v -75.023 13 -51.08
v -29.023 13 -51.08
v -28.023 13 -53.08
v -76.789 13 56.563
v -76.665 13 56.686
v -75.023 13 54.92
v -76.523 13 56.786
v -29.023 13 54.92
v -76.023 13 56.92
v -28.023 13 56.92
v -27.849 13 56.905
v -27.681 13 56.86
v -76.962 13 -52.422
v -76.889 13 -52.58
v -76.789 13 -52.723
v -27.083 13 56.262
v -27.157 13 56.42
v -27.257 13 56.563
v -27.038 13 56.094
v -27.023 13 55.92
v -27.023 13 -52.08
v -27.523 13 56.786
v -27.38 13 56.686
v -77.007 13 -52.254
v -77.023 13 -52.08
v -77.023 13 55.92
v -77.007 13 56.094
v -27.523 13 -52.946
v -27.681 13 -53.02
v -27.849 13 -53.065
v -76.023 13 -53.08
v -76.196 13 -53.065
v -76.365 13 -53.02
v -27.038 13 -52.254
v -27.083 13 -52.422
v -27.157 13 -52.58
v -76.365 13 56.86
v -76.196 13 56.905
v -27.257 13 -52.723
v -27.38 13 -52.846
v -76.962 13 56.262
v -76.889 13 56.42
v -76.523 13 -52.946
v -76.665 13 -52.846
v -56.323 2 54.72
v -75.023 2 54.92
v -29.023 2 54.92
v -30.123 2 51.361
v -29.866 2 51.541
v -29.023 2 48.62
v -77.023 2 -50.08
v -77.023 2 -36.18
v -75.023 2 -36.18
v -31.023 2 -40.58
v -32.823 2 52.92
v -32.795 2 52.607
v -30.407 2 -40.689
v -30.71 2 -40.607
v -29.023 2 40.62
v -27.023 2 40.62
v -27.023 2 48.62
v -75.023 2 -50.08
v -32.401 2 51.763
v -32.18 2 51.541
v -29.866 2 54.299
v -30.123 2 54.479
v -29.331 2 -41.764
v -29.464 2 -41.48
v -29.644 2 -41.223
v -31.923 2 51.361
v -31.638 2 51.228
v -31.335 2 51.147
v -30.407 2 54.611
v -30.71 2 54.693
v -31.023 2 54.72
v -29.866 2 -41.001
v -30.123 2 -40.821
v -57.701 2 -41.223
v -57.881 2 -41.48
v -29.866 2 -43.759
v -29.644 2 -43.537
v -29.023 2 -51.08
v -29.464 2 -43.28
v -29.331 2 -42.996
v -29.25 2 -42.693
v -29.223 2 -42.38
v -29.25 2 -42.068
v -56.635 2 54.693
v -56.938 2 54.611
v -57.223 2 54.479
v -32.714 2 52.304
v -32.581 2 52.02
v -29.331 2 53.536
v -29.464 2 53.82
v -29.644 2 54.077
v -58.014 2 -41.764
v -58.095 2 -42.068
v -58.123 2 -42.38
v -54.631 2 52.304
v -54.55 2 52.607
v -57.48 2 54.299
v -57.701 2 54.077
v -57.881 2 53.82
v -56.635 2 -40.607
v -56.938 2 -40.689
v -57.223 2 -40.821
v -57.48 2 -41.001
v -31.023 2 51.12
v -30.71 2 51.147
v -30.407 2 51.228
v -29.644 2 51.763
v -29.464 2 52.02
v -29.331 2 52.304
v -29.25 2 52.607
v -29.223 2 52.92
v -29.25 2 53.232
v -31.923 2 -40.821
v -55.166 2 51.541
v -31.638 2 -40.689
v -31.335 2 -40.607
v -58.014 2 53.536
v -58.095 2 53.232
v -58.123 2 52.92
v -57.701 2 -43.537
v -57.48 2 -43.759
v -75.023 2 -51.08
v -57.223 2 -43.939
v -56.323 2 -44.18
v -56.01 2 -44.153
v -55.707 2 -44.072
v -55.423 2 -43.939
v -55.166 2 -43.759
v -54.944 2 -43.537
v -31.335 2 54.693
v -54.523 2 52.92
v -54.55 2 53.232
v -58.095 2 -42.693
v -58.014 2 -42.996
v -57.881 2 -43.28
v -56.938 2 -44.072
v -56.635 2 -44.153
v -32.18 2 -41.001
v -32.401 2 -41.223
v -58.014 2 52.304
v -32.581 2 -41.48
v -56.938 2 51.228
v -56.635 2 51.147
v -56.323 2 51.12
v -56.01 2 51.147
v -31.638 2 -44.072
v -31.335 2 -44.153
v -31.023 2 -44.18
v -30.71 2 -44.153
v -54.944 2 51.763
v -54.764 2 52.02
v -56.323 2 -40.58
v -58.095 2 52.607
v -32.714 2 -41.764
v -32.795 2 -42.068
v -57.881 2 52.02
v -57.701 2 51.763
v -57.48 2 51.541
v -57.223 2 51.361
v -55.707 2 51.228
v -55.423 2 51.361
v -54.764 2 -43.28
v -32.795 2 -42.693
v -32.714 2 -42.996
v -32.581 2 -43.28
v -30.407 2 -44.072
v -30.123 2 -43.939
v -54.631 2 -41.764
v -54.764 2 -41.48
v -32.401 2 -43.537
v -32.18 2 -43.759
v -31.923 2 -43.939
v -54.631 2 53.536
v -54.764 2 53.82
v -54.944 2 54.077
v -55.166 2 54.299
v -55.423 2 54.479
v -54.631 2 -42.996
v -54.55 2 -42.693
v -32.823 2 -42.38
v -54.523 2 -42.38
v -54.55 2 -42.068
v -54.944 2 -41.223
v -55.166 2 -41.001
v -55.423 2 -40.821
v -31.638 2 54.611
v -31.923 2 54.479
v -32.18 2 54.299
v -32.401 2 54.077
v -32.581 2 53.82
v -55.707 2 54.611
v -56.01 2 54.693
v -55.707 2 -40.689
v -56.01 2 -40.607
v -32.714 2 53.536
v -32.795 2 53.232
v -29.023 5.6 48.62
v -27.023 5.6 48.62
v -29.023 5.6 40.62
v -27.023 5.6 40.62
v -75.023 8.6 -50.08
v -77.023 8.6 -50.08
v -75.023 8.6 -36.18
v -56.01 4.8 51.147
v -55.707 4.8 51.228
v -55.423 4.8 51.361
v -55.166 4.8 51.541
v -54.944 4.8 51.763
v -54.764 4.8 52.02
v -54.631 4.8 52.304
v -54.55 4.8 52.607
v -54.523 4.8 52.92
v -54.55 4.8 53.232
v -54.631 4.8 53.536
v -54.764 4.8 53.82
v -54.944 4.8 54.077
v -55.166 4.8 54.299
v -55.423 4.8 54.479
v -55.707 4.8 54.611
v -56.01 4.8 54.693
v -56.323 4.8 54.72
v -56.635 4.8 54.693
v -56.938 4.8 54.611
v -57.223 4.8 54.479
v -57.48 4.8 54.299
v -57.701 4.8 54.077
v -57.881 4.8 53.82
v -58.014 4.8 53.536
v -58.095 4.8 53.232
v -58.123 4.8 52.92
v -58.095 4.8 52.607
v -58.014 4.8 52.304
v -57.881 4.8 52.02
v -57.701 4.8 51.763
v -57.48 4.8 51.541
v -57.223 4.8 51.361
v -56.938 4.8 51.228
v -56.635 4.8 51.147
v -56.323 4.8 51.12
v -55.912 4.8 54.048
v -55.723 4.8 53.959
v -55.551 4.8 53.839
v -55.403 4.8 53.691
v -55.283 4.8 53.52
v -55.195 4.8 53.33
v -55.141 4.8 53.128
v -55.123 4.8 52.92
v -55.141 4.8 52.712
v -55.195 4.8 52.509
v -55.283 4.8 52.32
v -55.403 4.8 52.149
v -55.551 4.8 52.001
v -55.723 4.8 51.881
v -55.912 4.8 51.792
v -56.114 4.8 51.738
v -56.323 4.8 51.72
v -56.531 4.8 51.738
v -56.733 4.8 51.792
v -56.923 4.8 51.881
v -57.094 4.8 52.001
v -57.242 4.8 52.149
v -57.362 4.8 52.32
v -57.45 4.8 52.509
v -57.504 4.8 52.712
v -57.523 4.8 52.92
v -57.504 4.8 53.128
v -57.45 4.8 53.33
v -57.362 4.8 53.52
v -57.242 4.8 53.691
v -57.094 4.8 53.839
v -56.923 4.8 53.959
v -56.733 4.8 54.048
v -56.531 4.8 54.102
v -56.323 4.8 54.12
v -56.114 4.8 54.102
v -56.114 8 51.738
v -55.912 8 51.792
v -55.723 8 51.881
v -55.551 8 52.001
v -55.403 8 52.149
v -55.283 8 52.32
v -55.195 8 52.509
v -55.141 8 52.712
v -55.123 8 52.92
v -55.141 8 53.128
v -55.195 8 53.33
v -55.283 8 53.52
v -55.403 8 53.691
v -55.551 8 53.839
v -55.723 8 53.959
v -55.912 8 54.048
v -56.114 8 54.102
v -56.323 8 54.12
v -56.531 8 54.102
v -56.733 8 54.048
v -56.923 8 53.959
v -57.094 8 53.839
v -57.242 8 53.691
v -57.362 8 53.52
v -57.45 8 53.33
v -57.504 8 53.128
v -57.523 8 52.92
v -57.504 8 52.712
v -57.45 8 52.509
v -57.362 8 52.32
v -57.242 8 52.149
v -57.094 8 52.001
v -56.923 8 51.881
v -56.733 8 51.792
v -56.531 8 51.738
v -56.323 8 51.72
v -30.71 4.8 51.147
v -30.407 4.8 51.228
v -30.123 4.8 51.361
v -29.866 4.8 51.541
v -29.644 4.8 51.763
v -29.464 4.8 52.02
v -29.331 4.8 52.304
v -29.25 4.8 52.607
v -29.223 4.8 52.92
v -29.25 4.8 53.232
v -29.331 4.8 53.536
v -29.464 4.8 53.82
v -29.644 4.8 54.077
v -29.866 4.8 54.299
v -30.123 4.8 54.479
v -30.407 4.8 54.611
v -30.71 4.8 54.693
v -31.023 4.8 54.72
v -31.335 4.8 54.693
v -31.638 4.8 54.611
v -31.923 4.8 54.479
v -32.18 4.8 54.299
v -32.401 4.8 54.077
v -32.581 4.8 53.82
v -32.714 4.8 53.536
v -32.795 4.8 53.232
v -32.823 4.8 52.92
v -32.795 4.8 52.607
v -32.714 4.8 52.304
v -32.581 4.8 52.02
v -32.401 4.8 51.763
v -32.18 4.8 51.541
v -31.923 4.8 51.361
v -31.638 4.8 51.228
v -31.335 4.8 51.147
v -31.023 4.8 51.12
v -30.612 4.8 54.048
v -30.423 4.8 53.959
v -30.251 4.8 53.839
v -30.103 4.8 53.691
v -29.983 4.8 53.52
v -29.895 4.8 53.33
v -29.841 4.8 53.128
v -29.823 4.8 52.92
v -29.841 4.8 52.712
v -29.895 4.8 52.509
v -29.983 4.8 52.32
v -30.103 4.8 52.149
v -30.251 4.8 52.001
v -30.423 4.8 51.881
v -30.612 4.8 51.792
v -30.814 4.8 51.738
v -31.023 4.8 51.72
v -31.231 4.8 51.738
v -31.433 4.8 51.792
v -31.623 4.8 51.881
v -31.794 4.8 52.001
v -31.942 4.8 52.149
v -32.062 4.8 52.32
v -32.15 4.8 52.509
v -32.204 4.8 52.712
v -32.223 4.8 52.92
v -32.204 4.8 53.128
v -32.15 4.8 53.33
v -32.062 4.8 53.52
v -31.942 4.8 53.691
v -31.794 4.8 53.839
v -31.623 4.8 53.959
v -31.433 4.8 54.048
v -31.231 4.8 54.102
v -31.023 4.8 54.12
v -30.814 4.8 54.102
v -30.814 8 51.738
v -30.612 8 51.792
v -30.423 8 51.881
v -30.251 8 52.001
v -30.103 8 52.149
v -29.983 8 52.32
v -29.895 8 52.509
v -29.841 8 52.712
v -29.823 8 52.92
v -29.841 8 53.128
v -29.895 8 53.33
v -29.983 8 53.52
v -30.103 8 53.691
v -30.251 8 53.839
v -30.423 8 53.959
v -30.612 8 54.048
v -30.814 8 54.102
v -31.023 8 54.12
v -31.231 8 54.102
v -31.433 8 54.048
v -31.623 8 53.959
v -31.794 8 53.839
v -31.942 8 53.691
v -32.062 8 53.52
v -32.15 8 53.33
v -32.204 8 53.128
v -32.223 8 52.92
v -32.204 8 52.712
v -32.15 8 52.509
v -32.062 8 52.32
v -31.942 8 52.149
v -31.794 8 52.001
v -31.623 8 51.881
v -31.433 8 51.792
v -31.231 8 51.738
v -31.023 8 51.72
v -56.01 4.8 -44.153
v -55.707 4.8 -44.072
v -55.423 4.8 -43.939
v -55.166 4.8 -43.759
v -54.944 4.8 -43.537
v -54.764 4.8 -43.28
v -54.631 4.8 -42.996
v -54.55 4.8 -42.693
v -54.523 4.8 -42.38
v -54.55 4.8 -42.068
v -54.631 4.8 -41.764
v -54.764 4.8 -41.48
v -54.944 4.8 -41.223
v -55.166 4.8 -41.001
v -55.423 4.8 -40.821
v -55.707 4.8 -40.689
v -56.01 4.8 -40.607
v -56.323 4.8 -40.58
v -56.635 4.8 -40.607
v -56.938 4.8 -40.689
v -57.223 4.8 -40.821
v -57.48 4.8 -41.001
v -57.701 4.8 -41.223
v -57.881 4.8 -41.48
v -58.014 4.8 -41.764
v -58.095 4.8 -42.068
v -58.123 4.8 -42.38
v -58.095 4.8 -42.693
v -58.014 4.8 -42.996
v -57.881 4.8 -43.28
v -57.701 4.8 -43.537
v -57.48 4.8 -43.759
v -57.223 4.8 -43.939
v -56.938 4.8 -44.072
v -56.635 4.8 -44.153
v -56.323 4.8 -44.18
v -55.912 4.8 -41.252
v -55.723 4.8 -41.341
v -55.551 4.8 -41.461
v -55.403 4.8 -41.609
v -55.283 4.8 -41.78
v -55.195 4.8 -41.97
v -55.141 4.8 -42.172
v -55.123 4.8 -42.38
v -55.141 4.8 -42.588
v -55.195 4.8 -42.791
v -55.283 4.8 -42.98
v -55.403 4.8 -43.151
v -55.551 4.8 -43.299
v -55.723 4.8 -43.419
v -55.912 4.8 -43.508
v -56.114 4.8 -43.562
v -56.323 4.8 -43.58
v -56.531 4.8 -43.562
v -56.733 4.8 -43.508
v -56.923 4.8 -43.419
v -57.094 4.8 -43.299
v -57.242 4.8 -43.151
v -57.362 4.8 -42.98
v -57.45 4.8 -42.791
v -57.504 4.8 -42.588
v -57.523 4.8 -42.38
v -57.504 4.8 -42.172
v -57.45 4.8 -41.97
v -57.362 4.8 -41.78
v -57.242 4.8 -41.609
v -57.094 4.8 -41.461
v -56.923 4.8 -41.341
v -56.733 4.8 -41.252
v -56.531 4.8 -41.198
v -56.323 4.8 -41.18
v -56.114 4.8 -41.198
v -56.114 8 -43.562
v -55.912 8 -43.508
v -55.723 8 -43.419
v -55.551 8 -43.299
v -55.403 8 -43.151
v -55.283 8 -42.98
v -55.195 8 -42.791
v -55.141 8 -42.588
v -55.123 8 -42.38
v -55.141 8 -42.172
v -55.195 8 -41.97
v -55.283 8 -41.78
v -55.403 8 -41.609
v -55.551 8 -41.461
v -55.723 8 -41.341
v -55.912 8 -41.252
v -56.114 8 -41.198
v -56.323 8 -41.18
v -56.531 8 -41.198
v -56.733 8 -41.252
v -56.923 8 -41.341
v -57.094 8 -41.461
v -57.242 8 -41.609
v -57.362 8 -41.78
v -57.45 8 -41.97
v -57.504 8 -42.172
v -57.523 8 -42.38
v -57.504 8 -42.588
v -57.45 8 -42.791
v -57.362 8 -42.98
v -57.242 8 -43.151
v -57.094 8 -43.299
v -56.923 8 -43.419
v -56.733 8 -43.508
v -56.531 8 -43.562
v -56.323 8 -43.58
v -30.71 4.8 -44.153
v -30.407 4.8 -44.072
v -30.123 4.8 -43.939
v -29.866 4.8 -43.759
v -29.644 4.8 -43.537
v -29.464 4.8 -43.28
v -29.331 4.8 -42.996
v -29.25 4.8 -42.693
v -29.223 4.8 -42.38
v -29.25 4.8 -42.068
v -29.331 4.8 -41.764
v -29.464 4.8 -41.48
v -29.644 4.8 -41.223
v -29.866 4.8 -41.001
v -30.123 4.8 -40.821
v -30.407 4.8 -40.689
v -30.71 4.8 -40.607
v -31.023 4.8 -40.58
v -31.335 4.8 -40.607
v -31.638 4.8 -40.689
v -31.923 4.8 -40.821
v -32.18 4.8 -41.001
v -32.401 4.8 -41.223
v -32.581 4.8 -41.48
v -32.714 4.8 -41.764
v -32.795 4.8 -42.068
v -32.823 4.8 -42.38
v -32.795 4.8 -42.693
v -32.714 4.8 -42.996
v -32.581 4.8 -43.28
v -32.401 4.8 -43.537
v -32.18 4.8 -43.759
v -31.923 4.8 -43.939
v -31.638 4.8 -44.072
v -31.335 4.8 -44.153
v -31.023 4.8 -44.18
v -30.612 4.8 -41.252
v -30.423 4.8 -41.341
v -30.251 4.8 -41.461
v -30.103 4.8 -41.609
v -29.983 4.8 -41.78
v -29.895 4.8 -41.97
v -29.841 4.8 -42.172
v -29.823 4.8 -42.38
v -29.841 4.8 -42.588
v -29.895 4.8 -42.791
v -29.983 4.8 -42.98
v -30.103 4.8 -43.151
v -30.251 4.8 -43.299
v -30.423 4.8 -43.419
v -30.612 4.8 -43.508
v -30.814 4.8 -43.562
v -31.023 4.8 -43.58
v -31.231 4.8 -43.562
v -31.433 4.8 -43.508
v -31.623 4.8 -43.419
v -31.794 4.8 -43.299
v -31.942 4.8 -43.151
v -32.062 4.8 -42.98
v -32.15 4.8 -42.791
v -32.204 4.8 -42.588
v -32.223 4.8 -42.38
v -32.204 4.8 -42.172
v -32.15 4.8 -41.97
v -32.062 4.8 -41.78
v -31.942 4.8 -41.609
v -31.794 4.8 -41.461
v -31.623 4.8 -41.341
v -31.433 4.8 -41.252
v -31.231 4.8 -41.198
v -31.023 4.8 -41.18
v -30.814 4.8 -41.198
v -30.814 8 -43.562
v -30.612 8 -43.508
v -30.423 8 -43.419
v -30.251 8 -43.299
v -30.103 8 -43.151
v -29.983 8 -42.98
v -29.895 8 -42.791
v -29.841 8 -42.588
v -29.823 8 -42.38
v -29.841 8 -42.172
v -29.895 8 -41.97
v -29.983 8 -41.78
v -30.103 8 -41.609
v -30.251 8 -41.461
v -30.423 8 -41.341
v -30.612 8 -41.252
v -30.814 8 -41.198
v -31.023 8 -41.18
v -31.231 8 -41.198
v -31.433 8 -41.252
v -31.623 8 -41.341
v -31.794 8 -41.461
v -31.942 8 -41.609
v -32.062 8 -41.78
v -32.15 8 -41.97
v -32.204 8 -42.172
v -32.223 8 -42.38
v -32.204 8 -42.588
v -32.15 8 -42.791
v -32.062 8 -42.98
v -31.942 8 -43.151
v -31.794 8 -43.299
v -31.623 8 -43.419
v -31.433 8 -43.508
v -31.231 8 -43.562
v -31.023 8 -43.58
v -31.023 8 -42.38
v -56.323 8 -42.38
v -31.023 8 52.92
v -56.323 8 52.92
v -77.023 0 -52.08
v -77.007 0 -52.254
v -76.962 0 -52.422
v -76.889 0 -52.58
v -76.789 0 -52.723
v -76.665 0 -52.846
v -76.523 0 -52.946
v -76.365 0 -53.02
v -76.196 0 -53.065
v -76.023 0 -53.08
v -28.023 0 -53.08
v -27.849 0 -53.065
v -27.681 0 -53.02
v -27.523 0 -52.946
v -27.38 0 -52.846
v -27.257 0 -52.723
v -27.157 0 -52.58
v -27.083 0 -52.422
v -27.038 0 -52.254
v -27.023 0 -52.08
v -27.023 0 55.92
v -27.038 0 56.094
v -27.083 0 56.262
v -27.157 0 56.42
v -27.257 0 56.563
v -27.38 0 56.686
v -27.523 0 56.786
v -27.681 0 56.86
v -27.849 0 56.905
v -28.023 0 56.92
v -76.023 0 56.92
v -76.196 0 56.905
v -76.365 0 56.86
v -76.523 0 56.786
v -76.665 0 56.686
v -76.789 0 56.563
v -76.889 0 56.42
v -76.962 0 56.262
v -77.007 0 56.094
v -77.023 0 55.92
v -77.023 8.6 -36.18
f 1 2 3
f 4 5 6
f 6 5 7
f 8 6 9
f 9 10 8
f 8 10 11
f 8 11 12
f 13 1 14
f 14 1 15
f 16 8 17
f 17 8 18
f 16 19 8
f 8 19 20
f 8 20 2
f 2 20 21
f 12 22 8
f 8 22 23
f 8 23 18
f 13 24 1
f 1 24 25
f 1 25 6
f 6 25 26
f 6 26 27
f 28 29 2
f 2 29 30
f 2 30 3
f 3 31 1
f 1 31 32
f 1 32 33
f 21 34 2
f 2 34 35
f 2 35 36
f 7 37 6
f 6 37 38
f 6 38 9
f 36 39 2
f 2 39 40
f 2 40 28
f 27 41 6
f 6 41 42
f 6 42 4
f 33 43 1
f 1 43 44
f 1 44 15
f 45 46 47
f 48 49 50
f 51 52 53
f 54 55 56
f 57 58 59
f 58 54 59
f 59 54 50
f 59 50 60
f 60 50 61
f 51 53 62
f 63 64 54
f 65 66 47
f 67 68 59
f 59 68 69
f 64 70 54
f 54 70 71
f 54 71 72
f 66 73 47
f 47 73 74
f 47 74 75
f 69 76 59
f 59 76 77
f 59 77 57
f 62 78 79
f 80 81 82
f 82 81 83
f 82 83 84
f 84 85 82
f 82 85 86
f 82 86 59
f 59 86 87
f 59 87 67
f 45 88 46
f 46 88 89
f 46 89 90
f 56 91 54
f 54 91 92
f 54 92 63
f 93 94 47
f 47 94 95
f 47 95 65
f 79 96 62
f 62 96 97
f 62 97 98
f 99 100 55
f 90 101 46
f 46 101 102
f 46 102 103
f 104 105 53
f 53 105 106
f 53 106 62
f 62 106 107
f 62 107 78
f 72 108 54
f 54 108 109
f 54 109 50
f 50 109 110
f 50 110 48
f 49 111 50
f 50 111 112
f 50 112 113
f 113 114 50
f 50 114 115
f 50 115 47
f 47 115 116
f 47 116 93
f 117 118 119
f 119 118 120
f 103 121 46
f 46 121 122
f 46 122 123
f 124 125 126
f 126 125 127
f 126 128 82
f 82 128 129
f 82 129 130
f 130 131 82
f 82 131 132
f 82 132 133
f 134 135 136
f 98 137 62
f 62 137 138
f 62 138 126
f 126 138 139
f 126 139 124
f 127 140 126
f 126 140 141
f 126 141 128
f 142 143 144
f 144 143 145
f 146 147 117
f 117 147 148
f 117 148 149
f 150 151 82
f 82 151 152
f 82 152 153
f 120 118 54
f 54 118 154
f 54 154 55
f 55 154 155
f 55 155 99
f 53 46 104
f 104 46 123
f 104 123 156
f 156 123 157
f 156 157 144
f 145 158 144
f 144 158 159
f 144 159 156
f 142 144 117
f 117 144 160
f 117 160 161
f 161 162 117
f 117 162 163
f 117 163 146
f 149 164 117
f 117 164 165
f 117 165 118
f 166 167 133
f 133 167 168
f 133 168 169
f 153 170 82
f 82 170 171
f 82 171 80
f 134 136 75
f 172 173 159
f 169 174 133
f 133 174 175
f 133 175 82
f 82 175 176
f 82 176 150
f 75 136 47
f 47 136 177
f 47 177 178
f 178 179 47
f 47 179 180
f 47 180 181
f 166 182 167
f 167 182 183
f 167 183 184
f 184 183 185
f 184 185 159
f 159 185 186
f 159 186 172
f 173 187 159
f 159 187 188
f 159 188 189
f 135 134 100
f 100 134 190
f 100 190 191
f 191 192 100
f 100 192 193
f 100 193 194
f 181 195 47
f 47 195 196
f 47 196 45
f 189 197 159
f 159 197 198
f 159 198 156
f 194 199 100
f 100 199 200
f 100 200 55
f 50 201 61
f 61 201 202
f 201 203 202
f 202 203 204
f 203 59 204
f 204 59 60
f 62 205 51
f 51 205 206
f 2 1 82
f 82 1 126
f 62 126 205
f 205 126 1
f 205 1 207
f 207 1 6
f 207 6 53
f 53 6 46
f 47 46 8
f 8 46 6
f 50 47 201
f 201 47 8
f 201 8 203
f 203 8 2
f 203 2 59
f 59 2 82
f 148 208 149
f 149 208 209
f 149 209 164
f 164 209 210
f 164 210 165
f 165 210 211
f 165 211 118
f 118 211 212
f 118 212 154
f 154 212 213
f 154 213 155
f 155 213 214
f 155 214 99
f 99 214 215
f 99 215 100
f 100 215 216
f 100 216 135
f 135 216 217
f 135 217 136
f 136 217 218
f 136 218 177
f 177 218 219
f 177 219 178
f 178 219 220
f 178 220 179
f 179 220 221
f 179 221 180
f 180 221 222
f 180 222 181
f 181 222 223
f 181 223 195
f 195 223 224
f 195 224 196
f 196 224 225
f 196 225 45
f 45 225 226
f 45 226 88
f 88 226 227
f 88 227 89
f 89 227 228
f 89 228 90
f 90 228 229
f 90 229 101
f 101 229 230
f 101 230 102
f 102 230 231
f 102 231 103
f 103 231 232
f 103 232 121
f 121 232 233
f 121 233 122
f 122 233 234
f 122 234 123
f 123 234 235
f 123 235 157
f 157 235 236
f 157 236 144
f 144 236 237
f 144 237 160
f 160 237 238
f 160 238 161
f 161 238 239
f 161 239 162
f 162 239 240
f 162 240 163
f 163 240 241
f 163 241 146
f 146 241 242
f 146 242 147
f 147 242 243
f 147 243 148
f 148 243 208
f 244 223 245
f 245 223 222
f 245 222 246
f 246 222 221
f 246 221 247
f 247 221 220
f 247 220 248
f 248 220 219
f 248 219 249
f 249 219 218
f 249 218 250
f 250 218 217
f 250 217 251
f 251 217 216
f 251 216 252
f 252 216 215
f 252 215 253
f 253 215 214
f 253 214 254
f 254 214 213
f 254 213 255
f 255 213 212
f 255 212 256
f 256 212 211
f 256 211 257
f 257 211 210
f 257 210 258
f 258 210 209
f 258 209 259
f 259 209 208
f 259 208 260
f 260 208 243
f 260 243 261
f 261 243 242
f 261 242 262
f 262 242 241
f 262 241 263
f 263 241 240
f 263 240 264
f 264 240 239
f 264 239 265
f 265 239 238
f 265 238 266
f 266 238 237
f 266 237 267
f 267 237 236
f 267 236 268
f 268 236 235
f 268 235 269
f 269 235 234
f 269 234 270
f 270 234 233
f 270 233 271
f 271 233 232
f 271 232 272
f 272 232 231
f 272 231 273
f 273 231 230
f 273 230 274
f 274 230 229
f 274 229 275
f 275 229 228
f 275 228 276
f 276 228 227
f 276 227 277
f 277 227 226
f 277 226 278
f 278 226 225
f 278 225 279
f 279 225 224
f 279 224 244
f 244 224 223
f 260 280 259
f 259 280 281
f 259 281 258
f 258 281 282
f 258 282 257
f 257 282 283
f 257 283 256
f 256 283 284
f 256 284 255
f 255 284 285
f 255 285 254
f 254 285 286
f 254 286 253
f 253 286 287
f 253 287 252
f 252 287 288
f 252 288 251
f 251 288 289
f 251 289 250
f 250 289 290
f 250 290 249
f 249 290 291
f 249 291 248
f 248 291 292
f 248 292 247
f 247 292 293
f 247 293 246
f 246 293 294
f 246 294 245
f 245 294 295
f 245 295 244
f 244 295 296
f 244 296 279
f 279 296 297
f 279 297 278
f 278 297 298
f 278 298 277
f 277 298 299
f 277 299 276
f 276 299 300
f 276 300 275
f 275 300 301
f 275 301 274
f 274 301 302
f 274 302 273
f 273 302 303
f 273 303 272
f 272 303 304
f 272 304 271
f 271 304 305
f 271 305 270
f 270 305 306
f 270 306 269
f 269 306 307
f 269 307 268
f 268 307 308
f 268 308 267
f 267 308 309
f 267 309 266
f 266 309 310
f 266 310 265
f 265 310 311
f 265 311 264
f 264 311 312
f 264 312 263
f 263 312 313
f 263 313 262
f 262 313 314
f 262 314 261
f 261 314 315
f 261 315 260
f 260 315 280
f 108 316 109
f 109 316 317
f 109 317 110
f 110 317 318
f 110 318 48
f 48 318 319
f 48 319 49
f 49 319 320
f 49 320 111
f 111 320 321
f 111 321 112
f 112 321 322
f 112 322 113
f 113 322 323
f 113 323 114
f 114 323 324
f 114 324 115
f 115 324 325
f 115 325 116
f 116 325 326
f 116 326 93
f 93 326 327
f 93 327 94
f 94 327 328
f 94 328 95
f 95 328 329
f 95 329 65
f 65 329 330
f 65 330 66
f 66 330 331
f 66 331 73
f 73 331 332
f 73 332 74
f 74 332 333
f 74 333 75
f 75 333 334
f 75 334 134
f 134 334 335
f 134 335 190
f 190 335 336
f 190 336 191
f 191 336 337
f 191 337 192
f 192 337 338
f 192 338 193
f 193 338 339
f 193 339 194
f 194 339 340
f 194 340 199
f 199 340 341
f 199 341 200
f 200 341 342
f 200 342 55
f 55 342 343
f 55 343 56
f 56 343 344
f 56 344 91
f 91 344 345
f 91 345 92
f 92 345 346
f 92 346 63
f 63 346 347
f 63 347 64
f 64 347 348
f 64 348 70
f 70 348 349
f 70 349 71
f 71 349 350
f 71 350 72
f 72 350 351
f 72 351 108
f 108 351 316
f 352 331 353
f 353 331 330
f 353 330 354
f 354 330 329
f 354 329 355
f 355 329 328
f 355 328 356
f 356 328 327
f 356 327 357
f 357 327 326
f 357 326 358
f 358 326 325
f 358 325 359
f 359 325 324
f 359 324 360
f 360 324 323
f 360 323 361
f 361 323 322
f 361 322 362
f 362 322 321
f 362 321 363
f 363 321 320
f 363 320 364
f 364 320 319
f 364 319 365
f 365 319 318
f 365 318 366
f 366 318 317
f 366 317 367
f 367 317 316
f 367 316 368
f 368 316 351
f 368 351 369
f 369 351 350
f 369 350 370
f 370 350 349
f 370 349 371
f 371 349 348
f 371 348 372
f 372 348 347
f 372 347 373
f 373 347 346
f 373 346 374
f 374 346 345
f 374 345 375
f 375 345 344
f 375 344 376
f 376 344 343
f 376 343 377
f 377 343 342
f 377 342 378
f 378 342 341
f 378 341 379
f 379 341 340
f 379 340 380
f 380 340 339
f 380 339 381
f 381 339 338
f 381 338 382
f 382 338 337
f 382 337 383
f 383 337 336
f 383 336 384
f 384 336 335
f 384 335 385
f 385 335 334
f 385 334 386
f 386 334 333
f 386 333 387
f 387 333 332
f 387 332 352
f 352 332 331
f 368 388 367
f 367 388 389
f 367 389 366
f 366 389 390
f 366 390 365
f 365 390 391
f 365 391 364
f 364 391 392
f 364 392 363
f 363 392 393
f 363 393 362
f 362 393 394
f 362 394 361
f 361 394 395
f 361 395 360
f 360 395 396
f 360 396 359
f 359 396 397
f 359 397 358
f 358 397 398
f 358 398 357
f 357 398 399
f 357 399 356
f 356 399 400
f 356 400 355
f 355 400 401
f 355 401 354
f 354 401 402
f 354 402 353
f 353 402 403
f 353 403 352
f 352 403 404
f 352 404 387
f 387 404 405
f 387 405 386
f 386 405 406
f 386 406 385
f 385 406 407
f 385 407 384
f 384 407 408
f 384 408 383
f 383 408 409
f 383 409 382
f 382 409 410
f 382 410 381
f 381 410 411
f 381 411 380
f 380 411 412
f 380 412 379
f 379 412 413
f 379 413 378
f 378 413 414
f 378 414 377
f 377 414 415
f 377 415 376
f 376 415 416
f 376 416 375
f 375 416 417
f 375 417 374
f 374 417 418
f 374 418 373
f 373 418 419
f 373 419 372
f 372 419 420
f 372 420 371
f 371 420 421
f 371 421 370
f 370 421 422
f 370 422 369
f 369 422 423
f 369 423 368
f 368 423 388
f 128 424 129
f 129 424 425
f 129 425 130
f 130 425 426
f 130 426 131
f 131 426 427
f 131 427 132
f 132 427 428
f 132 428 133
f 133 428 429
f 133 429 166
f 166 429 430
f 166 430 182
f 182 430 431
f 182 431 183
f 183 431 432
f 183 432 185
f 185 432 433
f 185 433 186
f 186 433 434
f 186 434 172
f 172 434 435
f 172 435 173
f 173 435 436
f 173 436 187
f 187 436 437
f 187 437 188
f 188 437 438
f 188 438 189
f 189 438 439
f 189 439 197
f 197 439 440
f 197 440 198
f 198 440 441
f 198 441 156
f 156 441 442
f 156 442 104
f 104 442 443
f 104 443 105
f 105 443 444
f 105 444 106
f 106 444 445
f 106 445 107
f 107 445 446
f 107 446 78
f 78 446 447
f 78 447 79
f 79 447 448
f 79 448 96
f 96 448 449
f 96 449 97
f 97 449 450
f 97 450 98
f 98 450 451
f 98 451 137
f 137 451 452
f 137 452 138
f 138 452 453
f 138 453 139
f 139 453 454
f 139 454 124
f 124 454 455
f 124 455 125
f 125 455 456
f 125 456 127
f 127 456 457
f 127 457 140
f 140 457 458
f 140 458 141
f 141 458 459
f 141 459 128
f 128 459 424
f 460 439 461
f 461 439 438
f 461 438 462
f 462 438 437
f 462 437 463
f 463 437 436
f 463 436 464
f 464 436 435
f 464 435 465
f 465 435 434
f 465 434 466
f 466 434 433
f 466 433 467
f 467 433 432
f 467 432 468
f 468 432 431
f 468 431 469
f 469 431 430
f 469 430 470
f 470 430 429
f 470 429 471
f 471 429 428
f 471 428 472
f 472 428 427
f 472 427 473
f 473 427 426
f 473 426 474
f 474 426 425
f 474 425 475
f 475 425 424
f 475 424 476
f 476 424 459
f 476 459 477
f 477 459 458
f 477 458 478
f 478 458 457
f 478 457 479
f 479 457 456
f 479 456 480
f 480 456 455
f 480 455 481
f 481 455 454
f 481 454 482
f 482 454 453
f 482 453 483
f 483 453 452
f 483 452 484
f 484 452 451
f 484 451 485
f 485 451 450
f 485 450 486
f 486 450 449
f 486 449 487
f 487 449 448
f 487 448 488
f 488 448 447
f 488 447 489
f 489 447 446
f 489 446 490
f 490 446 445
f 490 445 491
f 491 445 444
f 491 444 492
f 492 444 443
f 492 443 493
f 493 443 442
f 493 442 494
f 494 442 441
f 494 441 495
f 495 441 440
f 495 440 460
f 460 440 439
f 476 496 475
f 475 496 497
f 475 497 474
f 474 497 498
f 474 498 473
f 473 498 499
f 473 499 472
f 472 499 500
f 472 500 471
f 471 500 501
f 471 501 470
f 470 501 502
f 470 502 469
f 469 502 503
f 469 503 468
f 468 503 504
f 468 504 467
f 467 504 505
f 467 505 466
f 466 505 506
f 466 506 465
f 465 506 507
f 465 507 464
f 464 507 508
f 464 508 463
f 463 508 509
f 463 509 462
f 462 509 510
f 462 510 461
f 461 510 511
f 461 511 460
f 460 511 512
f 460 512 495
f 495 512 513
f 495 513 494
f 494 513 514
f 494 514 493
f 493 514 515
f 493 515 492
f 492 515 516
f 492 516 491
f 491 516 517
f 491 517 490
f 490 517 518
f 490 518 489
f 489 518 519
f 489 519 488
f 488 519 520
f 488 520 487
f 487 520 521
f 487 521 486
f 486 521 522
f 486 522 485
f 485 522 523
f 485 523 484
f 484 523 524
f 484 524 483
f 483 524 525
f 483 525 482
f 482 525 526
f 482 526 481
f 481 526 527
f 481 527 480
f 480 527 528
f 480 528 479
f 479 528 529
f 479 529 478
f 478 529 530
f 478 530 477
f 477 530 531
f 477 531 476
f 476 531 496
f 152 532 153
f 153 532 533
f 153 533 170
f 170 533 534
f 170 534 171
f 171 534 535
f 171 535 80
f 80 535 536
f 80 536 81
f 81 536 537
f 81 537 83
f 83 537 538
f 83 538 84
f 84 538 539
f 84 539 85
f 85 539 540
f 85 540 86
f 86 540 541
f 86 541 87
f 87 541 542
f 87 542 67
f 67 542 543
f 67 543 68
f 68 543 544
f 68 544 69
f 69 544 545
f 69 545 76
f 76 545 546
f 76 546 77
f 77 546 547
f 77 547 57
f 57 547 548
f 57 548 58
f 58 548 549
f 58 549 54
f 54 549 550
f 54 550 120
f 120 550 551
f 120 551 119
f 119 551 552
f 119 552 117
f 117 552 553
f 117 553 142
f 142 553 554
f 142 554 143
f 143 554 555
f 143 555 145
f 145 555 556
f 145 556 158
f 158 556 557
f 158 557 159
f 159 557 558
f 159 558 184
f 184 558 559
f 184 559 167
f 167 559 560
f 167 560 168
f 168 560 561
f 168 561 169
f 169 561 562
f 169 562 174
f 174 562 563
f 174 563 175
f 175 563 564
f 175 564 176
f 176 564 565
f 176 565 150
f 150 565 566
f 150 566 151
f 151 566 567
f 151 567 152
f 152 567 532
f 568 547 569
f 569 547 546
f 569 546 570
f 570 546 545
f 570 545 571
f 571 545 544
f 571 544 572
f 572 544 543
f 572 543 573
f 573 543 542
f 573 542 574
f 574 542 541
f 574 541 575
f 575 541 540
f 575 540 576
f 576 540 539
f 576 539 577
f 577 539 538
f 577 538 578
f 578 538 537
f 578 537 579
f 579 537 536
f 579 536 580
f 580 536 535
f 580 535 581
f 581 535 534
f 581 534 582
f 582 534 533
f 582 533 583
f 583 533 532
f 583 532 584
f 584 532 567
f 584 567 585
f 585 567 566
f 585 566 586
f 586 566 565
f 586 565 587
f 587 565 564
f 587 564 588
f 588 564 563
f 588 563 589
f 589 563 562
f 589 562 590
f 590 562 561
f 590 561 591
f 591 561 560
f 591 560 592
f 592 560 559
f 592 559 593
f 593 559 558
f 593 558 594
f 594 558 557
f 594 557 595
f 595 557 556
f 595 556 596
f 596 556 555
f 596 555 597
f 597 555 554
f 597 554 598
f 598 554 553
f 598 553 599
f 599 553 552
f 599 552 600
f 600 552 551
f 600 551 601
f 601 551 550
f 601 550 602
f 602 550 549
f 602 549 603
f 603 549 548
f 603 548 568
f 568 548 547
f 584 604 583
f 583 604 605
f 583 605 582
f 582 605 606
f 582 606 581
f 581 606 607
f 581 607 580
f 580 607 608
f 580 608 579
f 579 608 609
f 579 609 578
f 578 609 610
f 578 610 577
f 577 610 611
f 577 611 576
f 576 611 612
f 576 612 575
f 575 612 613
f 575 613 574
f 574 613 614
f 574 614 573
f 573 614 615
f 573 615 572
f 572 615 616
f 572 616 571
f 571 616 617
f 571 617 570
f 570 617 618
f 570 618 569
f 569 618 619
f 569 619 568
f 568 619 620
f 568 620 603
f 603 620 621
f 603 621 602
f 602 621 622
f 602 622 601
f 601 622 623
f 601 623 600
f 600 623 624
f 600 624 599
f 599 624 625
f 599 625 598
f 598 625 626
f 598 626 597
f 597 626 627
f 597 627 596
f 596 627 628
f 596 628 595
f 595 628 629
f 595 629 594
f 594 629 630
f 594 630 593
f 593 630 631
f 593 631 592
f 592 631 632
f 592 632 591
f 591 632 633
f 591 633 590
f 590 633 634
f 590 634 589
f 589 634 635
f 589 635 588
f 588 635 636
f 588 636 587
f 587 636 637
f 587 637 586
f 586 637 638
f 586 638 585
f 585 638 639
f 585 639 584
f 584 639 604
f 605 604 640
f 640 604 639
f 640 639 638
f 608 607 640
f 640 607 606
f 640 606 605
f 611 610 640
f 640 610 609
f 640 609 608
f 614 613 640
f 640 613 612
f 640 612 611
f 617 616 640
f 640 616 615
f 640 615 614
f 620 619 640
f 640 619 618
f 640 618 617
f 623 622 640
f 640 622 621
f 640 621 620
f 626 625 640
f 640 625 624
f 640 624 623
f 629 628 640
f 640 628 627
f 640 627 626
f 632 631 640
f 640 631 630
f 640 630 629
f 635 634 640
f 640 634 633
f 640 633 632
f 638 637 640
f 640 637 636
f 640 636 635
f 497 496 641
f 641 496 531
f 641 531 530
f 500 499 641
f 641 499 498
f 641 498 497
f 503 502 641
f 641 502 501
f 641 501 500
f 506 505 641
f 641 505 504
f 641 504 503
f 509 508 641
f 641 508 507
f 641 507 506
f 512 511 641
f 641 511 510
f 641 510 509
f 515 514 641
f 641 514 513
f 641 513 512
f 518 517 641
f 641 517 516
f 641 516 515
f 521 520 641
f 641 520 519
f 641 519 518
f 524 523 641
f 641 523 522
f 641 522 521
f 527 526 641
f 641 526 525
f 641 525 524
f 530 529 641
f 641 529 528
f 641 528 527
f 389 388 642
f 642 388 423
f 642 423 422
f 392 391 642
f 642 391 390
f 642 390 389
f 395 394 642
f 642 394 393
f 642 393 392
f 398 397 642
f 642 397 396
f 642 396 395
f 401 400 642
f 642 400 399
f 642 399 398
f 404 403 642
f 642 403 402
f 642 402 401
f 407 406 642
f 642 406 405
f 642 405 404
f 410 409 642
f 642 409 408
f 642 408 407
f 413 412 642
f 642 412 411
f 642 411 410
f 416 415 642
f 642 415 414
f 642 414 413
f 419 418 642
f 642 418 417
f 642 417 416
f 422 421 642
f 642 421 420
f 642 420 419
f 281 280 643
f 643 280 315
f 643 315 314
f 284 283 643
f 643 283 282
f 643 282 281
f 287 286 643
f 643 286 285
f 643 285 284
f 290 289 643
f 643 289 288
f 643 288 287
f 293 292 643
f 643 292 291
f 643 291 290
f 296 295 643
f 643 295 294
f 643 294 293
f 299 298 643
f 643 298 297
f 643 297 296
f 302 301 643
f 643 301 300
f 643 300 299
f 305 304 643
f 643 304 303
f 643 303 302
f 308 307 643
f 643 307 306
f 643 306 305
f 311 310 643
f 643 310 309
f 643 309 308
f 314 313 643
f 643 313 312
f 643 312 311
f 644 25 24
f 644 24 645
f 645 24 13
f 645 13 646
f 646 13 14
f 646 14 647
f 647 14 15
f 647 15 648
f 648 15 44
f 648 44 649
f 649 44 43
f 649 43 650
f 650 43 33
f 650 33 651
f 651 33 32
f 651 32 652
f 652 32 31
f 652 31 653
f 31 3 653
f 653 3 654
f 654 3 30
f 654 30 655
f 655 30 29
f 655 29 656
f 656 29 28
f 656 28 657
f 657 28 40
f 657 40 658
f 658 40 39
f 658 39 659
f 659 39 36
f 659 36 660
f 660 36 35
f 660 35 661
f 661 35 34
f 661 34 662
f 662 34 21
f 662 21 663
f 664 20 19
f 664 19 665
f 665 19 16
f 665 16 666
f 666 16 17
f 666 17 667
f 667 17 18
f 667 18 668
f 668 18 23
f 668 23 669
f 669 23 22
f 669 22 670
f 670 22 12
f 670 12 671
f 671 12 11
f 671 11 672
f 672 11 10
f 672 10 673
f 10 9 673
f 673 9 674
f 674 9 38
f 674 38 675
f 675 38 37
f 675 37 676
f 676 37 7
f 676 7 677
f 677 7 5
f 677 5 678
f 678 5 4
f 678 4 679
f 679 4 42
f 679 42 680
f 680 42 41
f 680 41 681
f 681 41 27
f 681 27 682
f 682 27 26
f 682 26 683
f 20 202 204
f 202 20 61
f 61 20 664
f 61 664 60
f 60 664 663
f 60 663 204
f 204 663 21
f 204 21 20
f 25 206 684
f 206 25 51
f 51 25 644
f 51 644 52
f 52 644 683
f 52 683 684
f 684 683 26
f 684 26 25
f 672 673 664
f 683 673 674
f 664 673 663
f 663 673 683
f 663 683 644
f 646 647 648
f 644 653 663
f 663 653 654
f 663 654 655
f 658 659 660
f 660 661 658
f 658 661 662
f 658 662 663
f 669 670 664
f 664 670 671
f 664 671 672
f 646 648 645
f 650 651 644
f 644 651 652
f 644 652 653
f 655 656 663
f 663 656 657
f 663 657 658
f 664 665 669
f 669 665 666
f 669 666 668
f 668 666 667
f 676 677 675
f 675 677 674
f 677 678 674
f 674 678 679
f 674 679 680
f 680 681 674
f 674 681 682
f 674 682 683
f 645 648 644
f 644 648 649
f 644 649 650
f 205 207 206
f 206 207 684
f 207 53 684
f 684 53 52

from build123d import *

# Parameters (mm, degrees)
SKETCH1_W               = 50
SKETCH1_H               = 110
BOSS_EXTRUDE1_DEPTH     = 2
SKETCH2_W               = 50
SKETCH2_H               = 110
SKETCH2_W_2             = 46
SKETCH2_H_2             = 106
BOSS_EXTRUDE3_DEPTH     = 11
SKETCH3_R               = 1.2
BOSS_EXTRUDE4_DEPTH     = 11
SKETCH4_W               = 52
SKETCH4_H               = 112
SKETCH4_W_2             = 50
SKETCH4_H_2             = 110
EXTRUDE_THIN1_DEPTH     = 13
FILLET2_R               = 2
EXTRUDE_THIN3_DEPTH     = 3
SKETCH6_R               = 1.8
BOSS_EXTRUDE5_DEPTH     = 2.8
SKETCH8_W               = 8
SKETCH8_H               = 3.6
CUT_EXTRUDE2_DEPTH      = 12.8
SKETCH11_W              = 13.1
SKETCH11_H              = 5.8
CUT_EXTRUDE5_DEPTH      = 3
SKETCH13_W              = 108
SKETCH13_H              = 3
CUT_EXTRUDE6_DEPTH      = 70
CUT_EXTRUDE6_DEPTH_BACK = 40
SKETCH14_W              = 48
SKETCH14_H              = 3
CUT_EXTRUDE7_DEPTH      = 160
CUT_EXTRUDE7_DEPTH_BACK = 40
SKETCH15_W              = 66.867567733
SKETCH15_H              = 122.152543676
CUT_EXTRUDE8_DEPTH      = 40
SKETCH16_W              = 37.40524021
SKETCH16_H              = 102.153015582
CUT_EXTRUDE9_DEPTH      = 5
CUT_EXTRUDE_THIN2_DEPTH = 55
SKETCH18_W              = 13.9
SKETCH18_H              = 6.6
CUT_EXTRUDE10_DEPTH     = 2


with BuildPart() as part:
    # Sketch1 → Boss-Extrude1 (new body)
    with BuildSketch(Plane(origin=(0, 0, 0), x_dir=(1, 0, 0), z_dir=(0, 1, 0))):
        with Locations((-52.022587269, -1.919917864)):
            Rectangle(SKETCH1_W, SKETCH1_H)
    extrude(amount=BOSS_EXTRUDE1_DEPTH)

    # Sketch2 → Boss-Extrude3 (add)
    with BuildSketch(Plane(origin=(0, 2, 0), x_dir=(1, 0, 0), z_dir=(0, 1, 0))):
        with Locations((-52.022587269, -1.919917864)):
            Rectangle(SKETCH2_W, SKETCH2_H)
        with Locations((-52.022587269, -1.919917864)):
            Rectangle(SKETCH2_W_2, SKETCH2_H_2, mode=Mode.SUBTRACT)
    extrude(amount=BOSS_EXTRUDE3_DEPTH)

    # Sketch3 → Boss-Extrude4 (add)
    with BuildSketch(Plane(origin=(0, 2, 0), x_dir=(1, 0, 0), z_dir=(0, 1, 0))):
        with Locations((-31.022587269, 42.380082136)):
            Circle(SKETCH3_R)
        with Locations((-31.022587269, -52.919917864)):
            Circle(SKETCH3_R)
        with Locations((-56.322587269, 42.380082136)):
            Circle(SKETCH3_R)
        with Locations((-56.322587269, -52.919917864)):
            Circle(SKETCH3_R)
    extrude(amount=BOSS_EXTRUDE4_DEPTH)

    # Sketch4 → Extrude-Thin1 (add)
    with BuildSketch(Plane(origin=(0, 13, 0), x_dir=(1, 0, 0), z_dir=(0, 1, 0))):
        with Locations((-52.022587269, -1.919917864)):
            Rectangle(SKETCH4_W, SKETCH4_H)
        with Locations((-52.022587269, -1.919917864)):
            Rectangle(SKETCH4_W_2, SKETCH4_H_2, mode=Mode.SUBTRACT)
    extrude(amount=-EXTRUDE_THIN1_DEPTH)

    # Fillet2
    fillet2_edges = [part.edges().sort_by_distance(p)[0] for p in [
        (-26.022587269, 6.5, -54.080082136),
        (-26.022587269, 6.5, 57.919917864),
        (-78.022587269, 6.5, 57.919917864),
        (-78.022587269, 6.5, -54.080082136),
    ]]
    fillet(fillet2_edges, radius=FILLET2_R)

    # Sketch5 → Extrude-Thin3 (add)
    with BuildSketch(Plane(origin=(0, 13, 0), x_dir=(1, 0, 0), z_dir=(0, 1, 0))):
        with BuildLine():
            Line((-28.022587269, 54.080082136), (-76.022587269, 54.080082136))
            ThreePointArc((-76.022587269, 54.080082136), (-77.436800831, 53.494295698), (-78.022587269, 52.080082136))
            Line((-78.022587269, 52.080082136), (-78.022587269, -55.919917864))
            ThreePointArc((-78.022587269, -55.919917864), (-77.436800831, -57.334131427), (-76.022587269, -57.919917864))
            Line((-76.022587269, -57.919917864), (-28.022587269, -57.919917864))
            ThreePointArc((-28.022587269, -57.919917864), (-26.608373707, -57.334131427), (-26.022587269, -55.919917864))
            Line((-26.022587269, -55.919917864), (-26.022587269, 52.080082136))
            ThreePointArc((-26.022587269, 52.080082136), (-26.608373707, 53.494295698), (-28.022587269, 54.080082136))
        make_face()
        with BuildLine():
            Line((-28.022587269, 52.880082136), (-76.022587269, 52.880082136))
            ThreePointArc((-76.022587269, 52.880082136), (-76.588272694, 52.64576756), (-76.822587269, 52.080082136))
            Line((-76.822587269, 52.080082136), (-76.822587269, -55.919917864))
            ThreePointArc((-76.822587269, -55.919917864), (-76.588272694, -56.485603289), (-76.022587269, -56.719917864))
            Line((-76.022587269, -56.719917864), (-28.022587269, -56.719917864))
            ThreePointArc((-28.022587269, -56.719917864), (-27.456901844, -56.485603289), (-27.222587269, -55.919917864))
            Line((-27.222587269, -55.919917864), (-27.222587269, 52.080082136))
            ThreePointArc((-27.222587269, 52.080082136), (-27.456901844, 52.64576756), (-28.022587269, 52.880082136))
        make_face(mode=Mode.SUBTRACT)
    extrude(amount=EXTRUDE_THIN3_DEPTH)

    # Sketch6 → Boss-Extrude5 (add)
    with BuildSketch(Plane(origin=(0, 2, 0), x_dir=(1, 0, 0), z_dir=(0, 1, 0))):
        with Locations((-56.322587269, -52.919917864)):
            Circle(SKETCH6_R)
        with Locations((-31.022587269, -52.919917864)):
            Circle(SKETCH6_R)
        with Locations((-56.322587269, 42.380082136)):
            Circle(SKETCH6_R)
        with Locations((-31.022587269, 42.380082136)):
            Circle(SKETCH6_R)
    extrude(amount=BOSS_EXTRUDE5_DEPTH)

    # Sketch8 → Cut-Extrude2 (cut)
    with BuildSketch(Plane(origin=(-26.022587269, 0, 0), x_dir=(0, 0, -1), z_dir=(1, 0, 0))):
        with Locations((-44.619917864, 3.8)):
            Rectangle(SKETCH8_W, SKETCH8_H)
    extrude(amount=-CUT_EXTRUDE2_DEPTH, mode=Mode.SUBTRACT)

    # Sketch11 → Cut-Extrude5 (cut)
    with BuildSketch(Plane.ZY.offset(78.022587269)):
        with Locations((-43.530082136, 4.9)):
            Rectangle(SKETCH11_W, SKETCH11_H)
    extrude(amount=-CUT_EXTRUDE5_DEPTH, mode=Mode.SUBTRACT)

    # Sketch13 → Cut-Extrude6 (cut, two sides)
    with BuildSketch(Plane(origin=(-76.822587269, 0, 0), x_dir=(0, 0, -1), z_dir=(1, 0, 0))) as cut_extrude6_sk:
        with Locations((-1.919917864, 14.5)):
            Rectangle(SKETCH13_W, SKETCH13_H)
    extrude(amount=CUT_EXTRUDE6_DEPTH, mode=Mode.SUBTRACT)
    extrude(cut_extrude6_sk.sketch, amount=-CUT_EXTRUDE6_DEPTH_BACK, mode=Mode.SUBTRACT)

    # Sketch14 → Cut-Extrude7 (cut, two sides)
    with BuildSketch(Plane.XY.offset(-52.880082136)) as cut_extrude7_sk:
        with Locations((-52.022587269, 14.5)):
            Rectangle(SKETCH14_W, SKETCH14_H)
    extrude(amount=CUT_EXTRUDE7_DEPTH, mode=Mode.SUBTRACT)
    extrude(cut_extrude7_sk.sketch, amount=-CUT_EXTRUDE7_DEPTH_BACK, mode=Mode.SUBTRACT)

    # Sketch15 → Cut-Extrude8 (cut)
    with BuildSketch(Plane(origin=(0, 13, 0), x_dir=(1, 0, 0), z_dir=(0, 1, 0))):
        with Locations((-54.115240408, -0.313928246)):
            Rectangle(SKETCH15_W, SKETCH15_H)
    extrude(amount=CUT_EXTRUDE8_DEPTH, mode=Mode.SUBTRACT)

    # Sketch16 → Cut-Extrude9 (cut)
    with BuildSketch(Plane(origin=(0, 13, 0), x_dir=(1, 0, 0), z_dir=(0, 1, 0))):
        with Locations((-47.725207374, -3.843410073)):
            Rectangle(SKETCH16_W, SKETCH16_H)
    extrude(amount=-CUT_EXTRUDE9_DEPTH, mode=Mode.SUBTRACT)

    # Sketch17 → Cut-Extrude-Thin2 (cut)
    with BuildSketch(Plane(origin=(0, 13, 0), x_dir=(1, 0, 0), z_dir=(0, 1, 0))):
        with BuildLine():
            Line((-97.022587269, 52.080082136), (-97.022587269, -55.919917864))
            ThreePointArc((-97.022587269, -55.919917864), (-90.871829674, -70.769160269), (-76.022587269, -76.919917864))
            Line((-76.022587269, -76.919917864), (-28.022587269, -76.919917864))
            ThreePointArc((-28.022587269, -76.919917864), (-13.173344864, -70.769160269), (-7.022587269, -55.919917864))
            Line((-7.022587269, -55.919917864), (-7.022587269, 52.080082136))
            ThreePointArc((-7.022587269, 52.080082136), (-13.173344864, 66.92932454), (-28.022587269, 73.080082136))
            Line((-28.022587269, 73.080082136), (-76.022587269, 73.080082136))
            ThreePointArc((-76.022587269, 73.080082136), (-90.871829674, 66.92932454), (-97.022587269, 52.080082136))
        make_face()
        with BuildLine():
            Line((-77.022587269, 52.080082136), (-77.022587269, -55.919917864))
            ThreePointArc((-77.022587269, -55.919917864), (-76.72969405, -56.627024646), (-76.022587269, -56.919917864))
            Line((-76.022587269, -56.919917864), (-28.022587269, -56.919917864))
            ThreePointArc((-28.022587269, -56.919917864), (-27.315480488, -56.627024646), (-27.022587269, -55.919917864))
            Line((-27.022587269, -55.919917864), (-27.022587269, 52.080082136))
            ThreePointArc((-27.022587269, 52.080082136), (-27.315480488, 52.787188917), (-28.022587269, 53.080082136))
            Line((-28.022587269, 53.080082136), (-76.022587269, 53.080082136))
            ThreePointArc((-76.022587269, 53.080082136), (-76.72969405, 52.787188917), (-77.022587269, 52.080082136))
        make_face(mode=Mode.SUBTRACT)
    extrude(amount=-CUT_EXTRUDE_THIN2_DEPTH, mode=Mode.SUBTRACT)

    # Sketch18 → Cut-Extrude10 (cut)
    with BuildSketch(Plane.ZY.offset(77.022587269)):
        with Locations((-43.130082136, 5.3)):
            Rectangle(SKETCH18_W, SKETCH18_H)
    extrude(amount=-CUT_EXTRUDE10_DEPTH, mode=Mode.SUBTRACT)


solid = part.part
